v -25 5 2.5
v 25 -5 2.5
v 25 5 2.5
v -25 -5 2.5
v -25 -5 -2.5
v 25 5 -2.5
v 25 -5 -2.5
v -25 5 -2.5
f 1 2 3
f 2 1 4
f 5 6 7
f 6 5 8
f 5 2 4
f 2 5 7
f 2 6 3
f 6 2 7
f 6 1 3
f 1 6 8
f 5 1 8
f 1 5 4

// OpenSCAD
module component_name_1() {
    // Adjusted dimensions of the rectangular prism to match the original model
    length = 50;  // Length of the prism remains the same
    width = 10;   // Increased width to make the model wider
    height = 5;   // Increased height to make the model thicker

    // Create the rectangular prism with sharper edges
    cube([length, width, height], center = true);
}

// Main function to render the model
// Adjusted orientation to align with the original model
rotate([0, 0, 0])  // No rotation applied to match the original orientation
component_name_1();
